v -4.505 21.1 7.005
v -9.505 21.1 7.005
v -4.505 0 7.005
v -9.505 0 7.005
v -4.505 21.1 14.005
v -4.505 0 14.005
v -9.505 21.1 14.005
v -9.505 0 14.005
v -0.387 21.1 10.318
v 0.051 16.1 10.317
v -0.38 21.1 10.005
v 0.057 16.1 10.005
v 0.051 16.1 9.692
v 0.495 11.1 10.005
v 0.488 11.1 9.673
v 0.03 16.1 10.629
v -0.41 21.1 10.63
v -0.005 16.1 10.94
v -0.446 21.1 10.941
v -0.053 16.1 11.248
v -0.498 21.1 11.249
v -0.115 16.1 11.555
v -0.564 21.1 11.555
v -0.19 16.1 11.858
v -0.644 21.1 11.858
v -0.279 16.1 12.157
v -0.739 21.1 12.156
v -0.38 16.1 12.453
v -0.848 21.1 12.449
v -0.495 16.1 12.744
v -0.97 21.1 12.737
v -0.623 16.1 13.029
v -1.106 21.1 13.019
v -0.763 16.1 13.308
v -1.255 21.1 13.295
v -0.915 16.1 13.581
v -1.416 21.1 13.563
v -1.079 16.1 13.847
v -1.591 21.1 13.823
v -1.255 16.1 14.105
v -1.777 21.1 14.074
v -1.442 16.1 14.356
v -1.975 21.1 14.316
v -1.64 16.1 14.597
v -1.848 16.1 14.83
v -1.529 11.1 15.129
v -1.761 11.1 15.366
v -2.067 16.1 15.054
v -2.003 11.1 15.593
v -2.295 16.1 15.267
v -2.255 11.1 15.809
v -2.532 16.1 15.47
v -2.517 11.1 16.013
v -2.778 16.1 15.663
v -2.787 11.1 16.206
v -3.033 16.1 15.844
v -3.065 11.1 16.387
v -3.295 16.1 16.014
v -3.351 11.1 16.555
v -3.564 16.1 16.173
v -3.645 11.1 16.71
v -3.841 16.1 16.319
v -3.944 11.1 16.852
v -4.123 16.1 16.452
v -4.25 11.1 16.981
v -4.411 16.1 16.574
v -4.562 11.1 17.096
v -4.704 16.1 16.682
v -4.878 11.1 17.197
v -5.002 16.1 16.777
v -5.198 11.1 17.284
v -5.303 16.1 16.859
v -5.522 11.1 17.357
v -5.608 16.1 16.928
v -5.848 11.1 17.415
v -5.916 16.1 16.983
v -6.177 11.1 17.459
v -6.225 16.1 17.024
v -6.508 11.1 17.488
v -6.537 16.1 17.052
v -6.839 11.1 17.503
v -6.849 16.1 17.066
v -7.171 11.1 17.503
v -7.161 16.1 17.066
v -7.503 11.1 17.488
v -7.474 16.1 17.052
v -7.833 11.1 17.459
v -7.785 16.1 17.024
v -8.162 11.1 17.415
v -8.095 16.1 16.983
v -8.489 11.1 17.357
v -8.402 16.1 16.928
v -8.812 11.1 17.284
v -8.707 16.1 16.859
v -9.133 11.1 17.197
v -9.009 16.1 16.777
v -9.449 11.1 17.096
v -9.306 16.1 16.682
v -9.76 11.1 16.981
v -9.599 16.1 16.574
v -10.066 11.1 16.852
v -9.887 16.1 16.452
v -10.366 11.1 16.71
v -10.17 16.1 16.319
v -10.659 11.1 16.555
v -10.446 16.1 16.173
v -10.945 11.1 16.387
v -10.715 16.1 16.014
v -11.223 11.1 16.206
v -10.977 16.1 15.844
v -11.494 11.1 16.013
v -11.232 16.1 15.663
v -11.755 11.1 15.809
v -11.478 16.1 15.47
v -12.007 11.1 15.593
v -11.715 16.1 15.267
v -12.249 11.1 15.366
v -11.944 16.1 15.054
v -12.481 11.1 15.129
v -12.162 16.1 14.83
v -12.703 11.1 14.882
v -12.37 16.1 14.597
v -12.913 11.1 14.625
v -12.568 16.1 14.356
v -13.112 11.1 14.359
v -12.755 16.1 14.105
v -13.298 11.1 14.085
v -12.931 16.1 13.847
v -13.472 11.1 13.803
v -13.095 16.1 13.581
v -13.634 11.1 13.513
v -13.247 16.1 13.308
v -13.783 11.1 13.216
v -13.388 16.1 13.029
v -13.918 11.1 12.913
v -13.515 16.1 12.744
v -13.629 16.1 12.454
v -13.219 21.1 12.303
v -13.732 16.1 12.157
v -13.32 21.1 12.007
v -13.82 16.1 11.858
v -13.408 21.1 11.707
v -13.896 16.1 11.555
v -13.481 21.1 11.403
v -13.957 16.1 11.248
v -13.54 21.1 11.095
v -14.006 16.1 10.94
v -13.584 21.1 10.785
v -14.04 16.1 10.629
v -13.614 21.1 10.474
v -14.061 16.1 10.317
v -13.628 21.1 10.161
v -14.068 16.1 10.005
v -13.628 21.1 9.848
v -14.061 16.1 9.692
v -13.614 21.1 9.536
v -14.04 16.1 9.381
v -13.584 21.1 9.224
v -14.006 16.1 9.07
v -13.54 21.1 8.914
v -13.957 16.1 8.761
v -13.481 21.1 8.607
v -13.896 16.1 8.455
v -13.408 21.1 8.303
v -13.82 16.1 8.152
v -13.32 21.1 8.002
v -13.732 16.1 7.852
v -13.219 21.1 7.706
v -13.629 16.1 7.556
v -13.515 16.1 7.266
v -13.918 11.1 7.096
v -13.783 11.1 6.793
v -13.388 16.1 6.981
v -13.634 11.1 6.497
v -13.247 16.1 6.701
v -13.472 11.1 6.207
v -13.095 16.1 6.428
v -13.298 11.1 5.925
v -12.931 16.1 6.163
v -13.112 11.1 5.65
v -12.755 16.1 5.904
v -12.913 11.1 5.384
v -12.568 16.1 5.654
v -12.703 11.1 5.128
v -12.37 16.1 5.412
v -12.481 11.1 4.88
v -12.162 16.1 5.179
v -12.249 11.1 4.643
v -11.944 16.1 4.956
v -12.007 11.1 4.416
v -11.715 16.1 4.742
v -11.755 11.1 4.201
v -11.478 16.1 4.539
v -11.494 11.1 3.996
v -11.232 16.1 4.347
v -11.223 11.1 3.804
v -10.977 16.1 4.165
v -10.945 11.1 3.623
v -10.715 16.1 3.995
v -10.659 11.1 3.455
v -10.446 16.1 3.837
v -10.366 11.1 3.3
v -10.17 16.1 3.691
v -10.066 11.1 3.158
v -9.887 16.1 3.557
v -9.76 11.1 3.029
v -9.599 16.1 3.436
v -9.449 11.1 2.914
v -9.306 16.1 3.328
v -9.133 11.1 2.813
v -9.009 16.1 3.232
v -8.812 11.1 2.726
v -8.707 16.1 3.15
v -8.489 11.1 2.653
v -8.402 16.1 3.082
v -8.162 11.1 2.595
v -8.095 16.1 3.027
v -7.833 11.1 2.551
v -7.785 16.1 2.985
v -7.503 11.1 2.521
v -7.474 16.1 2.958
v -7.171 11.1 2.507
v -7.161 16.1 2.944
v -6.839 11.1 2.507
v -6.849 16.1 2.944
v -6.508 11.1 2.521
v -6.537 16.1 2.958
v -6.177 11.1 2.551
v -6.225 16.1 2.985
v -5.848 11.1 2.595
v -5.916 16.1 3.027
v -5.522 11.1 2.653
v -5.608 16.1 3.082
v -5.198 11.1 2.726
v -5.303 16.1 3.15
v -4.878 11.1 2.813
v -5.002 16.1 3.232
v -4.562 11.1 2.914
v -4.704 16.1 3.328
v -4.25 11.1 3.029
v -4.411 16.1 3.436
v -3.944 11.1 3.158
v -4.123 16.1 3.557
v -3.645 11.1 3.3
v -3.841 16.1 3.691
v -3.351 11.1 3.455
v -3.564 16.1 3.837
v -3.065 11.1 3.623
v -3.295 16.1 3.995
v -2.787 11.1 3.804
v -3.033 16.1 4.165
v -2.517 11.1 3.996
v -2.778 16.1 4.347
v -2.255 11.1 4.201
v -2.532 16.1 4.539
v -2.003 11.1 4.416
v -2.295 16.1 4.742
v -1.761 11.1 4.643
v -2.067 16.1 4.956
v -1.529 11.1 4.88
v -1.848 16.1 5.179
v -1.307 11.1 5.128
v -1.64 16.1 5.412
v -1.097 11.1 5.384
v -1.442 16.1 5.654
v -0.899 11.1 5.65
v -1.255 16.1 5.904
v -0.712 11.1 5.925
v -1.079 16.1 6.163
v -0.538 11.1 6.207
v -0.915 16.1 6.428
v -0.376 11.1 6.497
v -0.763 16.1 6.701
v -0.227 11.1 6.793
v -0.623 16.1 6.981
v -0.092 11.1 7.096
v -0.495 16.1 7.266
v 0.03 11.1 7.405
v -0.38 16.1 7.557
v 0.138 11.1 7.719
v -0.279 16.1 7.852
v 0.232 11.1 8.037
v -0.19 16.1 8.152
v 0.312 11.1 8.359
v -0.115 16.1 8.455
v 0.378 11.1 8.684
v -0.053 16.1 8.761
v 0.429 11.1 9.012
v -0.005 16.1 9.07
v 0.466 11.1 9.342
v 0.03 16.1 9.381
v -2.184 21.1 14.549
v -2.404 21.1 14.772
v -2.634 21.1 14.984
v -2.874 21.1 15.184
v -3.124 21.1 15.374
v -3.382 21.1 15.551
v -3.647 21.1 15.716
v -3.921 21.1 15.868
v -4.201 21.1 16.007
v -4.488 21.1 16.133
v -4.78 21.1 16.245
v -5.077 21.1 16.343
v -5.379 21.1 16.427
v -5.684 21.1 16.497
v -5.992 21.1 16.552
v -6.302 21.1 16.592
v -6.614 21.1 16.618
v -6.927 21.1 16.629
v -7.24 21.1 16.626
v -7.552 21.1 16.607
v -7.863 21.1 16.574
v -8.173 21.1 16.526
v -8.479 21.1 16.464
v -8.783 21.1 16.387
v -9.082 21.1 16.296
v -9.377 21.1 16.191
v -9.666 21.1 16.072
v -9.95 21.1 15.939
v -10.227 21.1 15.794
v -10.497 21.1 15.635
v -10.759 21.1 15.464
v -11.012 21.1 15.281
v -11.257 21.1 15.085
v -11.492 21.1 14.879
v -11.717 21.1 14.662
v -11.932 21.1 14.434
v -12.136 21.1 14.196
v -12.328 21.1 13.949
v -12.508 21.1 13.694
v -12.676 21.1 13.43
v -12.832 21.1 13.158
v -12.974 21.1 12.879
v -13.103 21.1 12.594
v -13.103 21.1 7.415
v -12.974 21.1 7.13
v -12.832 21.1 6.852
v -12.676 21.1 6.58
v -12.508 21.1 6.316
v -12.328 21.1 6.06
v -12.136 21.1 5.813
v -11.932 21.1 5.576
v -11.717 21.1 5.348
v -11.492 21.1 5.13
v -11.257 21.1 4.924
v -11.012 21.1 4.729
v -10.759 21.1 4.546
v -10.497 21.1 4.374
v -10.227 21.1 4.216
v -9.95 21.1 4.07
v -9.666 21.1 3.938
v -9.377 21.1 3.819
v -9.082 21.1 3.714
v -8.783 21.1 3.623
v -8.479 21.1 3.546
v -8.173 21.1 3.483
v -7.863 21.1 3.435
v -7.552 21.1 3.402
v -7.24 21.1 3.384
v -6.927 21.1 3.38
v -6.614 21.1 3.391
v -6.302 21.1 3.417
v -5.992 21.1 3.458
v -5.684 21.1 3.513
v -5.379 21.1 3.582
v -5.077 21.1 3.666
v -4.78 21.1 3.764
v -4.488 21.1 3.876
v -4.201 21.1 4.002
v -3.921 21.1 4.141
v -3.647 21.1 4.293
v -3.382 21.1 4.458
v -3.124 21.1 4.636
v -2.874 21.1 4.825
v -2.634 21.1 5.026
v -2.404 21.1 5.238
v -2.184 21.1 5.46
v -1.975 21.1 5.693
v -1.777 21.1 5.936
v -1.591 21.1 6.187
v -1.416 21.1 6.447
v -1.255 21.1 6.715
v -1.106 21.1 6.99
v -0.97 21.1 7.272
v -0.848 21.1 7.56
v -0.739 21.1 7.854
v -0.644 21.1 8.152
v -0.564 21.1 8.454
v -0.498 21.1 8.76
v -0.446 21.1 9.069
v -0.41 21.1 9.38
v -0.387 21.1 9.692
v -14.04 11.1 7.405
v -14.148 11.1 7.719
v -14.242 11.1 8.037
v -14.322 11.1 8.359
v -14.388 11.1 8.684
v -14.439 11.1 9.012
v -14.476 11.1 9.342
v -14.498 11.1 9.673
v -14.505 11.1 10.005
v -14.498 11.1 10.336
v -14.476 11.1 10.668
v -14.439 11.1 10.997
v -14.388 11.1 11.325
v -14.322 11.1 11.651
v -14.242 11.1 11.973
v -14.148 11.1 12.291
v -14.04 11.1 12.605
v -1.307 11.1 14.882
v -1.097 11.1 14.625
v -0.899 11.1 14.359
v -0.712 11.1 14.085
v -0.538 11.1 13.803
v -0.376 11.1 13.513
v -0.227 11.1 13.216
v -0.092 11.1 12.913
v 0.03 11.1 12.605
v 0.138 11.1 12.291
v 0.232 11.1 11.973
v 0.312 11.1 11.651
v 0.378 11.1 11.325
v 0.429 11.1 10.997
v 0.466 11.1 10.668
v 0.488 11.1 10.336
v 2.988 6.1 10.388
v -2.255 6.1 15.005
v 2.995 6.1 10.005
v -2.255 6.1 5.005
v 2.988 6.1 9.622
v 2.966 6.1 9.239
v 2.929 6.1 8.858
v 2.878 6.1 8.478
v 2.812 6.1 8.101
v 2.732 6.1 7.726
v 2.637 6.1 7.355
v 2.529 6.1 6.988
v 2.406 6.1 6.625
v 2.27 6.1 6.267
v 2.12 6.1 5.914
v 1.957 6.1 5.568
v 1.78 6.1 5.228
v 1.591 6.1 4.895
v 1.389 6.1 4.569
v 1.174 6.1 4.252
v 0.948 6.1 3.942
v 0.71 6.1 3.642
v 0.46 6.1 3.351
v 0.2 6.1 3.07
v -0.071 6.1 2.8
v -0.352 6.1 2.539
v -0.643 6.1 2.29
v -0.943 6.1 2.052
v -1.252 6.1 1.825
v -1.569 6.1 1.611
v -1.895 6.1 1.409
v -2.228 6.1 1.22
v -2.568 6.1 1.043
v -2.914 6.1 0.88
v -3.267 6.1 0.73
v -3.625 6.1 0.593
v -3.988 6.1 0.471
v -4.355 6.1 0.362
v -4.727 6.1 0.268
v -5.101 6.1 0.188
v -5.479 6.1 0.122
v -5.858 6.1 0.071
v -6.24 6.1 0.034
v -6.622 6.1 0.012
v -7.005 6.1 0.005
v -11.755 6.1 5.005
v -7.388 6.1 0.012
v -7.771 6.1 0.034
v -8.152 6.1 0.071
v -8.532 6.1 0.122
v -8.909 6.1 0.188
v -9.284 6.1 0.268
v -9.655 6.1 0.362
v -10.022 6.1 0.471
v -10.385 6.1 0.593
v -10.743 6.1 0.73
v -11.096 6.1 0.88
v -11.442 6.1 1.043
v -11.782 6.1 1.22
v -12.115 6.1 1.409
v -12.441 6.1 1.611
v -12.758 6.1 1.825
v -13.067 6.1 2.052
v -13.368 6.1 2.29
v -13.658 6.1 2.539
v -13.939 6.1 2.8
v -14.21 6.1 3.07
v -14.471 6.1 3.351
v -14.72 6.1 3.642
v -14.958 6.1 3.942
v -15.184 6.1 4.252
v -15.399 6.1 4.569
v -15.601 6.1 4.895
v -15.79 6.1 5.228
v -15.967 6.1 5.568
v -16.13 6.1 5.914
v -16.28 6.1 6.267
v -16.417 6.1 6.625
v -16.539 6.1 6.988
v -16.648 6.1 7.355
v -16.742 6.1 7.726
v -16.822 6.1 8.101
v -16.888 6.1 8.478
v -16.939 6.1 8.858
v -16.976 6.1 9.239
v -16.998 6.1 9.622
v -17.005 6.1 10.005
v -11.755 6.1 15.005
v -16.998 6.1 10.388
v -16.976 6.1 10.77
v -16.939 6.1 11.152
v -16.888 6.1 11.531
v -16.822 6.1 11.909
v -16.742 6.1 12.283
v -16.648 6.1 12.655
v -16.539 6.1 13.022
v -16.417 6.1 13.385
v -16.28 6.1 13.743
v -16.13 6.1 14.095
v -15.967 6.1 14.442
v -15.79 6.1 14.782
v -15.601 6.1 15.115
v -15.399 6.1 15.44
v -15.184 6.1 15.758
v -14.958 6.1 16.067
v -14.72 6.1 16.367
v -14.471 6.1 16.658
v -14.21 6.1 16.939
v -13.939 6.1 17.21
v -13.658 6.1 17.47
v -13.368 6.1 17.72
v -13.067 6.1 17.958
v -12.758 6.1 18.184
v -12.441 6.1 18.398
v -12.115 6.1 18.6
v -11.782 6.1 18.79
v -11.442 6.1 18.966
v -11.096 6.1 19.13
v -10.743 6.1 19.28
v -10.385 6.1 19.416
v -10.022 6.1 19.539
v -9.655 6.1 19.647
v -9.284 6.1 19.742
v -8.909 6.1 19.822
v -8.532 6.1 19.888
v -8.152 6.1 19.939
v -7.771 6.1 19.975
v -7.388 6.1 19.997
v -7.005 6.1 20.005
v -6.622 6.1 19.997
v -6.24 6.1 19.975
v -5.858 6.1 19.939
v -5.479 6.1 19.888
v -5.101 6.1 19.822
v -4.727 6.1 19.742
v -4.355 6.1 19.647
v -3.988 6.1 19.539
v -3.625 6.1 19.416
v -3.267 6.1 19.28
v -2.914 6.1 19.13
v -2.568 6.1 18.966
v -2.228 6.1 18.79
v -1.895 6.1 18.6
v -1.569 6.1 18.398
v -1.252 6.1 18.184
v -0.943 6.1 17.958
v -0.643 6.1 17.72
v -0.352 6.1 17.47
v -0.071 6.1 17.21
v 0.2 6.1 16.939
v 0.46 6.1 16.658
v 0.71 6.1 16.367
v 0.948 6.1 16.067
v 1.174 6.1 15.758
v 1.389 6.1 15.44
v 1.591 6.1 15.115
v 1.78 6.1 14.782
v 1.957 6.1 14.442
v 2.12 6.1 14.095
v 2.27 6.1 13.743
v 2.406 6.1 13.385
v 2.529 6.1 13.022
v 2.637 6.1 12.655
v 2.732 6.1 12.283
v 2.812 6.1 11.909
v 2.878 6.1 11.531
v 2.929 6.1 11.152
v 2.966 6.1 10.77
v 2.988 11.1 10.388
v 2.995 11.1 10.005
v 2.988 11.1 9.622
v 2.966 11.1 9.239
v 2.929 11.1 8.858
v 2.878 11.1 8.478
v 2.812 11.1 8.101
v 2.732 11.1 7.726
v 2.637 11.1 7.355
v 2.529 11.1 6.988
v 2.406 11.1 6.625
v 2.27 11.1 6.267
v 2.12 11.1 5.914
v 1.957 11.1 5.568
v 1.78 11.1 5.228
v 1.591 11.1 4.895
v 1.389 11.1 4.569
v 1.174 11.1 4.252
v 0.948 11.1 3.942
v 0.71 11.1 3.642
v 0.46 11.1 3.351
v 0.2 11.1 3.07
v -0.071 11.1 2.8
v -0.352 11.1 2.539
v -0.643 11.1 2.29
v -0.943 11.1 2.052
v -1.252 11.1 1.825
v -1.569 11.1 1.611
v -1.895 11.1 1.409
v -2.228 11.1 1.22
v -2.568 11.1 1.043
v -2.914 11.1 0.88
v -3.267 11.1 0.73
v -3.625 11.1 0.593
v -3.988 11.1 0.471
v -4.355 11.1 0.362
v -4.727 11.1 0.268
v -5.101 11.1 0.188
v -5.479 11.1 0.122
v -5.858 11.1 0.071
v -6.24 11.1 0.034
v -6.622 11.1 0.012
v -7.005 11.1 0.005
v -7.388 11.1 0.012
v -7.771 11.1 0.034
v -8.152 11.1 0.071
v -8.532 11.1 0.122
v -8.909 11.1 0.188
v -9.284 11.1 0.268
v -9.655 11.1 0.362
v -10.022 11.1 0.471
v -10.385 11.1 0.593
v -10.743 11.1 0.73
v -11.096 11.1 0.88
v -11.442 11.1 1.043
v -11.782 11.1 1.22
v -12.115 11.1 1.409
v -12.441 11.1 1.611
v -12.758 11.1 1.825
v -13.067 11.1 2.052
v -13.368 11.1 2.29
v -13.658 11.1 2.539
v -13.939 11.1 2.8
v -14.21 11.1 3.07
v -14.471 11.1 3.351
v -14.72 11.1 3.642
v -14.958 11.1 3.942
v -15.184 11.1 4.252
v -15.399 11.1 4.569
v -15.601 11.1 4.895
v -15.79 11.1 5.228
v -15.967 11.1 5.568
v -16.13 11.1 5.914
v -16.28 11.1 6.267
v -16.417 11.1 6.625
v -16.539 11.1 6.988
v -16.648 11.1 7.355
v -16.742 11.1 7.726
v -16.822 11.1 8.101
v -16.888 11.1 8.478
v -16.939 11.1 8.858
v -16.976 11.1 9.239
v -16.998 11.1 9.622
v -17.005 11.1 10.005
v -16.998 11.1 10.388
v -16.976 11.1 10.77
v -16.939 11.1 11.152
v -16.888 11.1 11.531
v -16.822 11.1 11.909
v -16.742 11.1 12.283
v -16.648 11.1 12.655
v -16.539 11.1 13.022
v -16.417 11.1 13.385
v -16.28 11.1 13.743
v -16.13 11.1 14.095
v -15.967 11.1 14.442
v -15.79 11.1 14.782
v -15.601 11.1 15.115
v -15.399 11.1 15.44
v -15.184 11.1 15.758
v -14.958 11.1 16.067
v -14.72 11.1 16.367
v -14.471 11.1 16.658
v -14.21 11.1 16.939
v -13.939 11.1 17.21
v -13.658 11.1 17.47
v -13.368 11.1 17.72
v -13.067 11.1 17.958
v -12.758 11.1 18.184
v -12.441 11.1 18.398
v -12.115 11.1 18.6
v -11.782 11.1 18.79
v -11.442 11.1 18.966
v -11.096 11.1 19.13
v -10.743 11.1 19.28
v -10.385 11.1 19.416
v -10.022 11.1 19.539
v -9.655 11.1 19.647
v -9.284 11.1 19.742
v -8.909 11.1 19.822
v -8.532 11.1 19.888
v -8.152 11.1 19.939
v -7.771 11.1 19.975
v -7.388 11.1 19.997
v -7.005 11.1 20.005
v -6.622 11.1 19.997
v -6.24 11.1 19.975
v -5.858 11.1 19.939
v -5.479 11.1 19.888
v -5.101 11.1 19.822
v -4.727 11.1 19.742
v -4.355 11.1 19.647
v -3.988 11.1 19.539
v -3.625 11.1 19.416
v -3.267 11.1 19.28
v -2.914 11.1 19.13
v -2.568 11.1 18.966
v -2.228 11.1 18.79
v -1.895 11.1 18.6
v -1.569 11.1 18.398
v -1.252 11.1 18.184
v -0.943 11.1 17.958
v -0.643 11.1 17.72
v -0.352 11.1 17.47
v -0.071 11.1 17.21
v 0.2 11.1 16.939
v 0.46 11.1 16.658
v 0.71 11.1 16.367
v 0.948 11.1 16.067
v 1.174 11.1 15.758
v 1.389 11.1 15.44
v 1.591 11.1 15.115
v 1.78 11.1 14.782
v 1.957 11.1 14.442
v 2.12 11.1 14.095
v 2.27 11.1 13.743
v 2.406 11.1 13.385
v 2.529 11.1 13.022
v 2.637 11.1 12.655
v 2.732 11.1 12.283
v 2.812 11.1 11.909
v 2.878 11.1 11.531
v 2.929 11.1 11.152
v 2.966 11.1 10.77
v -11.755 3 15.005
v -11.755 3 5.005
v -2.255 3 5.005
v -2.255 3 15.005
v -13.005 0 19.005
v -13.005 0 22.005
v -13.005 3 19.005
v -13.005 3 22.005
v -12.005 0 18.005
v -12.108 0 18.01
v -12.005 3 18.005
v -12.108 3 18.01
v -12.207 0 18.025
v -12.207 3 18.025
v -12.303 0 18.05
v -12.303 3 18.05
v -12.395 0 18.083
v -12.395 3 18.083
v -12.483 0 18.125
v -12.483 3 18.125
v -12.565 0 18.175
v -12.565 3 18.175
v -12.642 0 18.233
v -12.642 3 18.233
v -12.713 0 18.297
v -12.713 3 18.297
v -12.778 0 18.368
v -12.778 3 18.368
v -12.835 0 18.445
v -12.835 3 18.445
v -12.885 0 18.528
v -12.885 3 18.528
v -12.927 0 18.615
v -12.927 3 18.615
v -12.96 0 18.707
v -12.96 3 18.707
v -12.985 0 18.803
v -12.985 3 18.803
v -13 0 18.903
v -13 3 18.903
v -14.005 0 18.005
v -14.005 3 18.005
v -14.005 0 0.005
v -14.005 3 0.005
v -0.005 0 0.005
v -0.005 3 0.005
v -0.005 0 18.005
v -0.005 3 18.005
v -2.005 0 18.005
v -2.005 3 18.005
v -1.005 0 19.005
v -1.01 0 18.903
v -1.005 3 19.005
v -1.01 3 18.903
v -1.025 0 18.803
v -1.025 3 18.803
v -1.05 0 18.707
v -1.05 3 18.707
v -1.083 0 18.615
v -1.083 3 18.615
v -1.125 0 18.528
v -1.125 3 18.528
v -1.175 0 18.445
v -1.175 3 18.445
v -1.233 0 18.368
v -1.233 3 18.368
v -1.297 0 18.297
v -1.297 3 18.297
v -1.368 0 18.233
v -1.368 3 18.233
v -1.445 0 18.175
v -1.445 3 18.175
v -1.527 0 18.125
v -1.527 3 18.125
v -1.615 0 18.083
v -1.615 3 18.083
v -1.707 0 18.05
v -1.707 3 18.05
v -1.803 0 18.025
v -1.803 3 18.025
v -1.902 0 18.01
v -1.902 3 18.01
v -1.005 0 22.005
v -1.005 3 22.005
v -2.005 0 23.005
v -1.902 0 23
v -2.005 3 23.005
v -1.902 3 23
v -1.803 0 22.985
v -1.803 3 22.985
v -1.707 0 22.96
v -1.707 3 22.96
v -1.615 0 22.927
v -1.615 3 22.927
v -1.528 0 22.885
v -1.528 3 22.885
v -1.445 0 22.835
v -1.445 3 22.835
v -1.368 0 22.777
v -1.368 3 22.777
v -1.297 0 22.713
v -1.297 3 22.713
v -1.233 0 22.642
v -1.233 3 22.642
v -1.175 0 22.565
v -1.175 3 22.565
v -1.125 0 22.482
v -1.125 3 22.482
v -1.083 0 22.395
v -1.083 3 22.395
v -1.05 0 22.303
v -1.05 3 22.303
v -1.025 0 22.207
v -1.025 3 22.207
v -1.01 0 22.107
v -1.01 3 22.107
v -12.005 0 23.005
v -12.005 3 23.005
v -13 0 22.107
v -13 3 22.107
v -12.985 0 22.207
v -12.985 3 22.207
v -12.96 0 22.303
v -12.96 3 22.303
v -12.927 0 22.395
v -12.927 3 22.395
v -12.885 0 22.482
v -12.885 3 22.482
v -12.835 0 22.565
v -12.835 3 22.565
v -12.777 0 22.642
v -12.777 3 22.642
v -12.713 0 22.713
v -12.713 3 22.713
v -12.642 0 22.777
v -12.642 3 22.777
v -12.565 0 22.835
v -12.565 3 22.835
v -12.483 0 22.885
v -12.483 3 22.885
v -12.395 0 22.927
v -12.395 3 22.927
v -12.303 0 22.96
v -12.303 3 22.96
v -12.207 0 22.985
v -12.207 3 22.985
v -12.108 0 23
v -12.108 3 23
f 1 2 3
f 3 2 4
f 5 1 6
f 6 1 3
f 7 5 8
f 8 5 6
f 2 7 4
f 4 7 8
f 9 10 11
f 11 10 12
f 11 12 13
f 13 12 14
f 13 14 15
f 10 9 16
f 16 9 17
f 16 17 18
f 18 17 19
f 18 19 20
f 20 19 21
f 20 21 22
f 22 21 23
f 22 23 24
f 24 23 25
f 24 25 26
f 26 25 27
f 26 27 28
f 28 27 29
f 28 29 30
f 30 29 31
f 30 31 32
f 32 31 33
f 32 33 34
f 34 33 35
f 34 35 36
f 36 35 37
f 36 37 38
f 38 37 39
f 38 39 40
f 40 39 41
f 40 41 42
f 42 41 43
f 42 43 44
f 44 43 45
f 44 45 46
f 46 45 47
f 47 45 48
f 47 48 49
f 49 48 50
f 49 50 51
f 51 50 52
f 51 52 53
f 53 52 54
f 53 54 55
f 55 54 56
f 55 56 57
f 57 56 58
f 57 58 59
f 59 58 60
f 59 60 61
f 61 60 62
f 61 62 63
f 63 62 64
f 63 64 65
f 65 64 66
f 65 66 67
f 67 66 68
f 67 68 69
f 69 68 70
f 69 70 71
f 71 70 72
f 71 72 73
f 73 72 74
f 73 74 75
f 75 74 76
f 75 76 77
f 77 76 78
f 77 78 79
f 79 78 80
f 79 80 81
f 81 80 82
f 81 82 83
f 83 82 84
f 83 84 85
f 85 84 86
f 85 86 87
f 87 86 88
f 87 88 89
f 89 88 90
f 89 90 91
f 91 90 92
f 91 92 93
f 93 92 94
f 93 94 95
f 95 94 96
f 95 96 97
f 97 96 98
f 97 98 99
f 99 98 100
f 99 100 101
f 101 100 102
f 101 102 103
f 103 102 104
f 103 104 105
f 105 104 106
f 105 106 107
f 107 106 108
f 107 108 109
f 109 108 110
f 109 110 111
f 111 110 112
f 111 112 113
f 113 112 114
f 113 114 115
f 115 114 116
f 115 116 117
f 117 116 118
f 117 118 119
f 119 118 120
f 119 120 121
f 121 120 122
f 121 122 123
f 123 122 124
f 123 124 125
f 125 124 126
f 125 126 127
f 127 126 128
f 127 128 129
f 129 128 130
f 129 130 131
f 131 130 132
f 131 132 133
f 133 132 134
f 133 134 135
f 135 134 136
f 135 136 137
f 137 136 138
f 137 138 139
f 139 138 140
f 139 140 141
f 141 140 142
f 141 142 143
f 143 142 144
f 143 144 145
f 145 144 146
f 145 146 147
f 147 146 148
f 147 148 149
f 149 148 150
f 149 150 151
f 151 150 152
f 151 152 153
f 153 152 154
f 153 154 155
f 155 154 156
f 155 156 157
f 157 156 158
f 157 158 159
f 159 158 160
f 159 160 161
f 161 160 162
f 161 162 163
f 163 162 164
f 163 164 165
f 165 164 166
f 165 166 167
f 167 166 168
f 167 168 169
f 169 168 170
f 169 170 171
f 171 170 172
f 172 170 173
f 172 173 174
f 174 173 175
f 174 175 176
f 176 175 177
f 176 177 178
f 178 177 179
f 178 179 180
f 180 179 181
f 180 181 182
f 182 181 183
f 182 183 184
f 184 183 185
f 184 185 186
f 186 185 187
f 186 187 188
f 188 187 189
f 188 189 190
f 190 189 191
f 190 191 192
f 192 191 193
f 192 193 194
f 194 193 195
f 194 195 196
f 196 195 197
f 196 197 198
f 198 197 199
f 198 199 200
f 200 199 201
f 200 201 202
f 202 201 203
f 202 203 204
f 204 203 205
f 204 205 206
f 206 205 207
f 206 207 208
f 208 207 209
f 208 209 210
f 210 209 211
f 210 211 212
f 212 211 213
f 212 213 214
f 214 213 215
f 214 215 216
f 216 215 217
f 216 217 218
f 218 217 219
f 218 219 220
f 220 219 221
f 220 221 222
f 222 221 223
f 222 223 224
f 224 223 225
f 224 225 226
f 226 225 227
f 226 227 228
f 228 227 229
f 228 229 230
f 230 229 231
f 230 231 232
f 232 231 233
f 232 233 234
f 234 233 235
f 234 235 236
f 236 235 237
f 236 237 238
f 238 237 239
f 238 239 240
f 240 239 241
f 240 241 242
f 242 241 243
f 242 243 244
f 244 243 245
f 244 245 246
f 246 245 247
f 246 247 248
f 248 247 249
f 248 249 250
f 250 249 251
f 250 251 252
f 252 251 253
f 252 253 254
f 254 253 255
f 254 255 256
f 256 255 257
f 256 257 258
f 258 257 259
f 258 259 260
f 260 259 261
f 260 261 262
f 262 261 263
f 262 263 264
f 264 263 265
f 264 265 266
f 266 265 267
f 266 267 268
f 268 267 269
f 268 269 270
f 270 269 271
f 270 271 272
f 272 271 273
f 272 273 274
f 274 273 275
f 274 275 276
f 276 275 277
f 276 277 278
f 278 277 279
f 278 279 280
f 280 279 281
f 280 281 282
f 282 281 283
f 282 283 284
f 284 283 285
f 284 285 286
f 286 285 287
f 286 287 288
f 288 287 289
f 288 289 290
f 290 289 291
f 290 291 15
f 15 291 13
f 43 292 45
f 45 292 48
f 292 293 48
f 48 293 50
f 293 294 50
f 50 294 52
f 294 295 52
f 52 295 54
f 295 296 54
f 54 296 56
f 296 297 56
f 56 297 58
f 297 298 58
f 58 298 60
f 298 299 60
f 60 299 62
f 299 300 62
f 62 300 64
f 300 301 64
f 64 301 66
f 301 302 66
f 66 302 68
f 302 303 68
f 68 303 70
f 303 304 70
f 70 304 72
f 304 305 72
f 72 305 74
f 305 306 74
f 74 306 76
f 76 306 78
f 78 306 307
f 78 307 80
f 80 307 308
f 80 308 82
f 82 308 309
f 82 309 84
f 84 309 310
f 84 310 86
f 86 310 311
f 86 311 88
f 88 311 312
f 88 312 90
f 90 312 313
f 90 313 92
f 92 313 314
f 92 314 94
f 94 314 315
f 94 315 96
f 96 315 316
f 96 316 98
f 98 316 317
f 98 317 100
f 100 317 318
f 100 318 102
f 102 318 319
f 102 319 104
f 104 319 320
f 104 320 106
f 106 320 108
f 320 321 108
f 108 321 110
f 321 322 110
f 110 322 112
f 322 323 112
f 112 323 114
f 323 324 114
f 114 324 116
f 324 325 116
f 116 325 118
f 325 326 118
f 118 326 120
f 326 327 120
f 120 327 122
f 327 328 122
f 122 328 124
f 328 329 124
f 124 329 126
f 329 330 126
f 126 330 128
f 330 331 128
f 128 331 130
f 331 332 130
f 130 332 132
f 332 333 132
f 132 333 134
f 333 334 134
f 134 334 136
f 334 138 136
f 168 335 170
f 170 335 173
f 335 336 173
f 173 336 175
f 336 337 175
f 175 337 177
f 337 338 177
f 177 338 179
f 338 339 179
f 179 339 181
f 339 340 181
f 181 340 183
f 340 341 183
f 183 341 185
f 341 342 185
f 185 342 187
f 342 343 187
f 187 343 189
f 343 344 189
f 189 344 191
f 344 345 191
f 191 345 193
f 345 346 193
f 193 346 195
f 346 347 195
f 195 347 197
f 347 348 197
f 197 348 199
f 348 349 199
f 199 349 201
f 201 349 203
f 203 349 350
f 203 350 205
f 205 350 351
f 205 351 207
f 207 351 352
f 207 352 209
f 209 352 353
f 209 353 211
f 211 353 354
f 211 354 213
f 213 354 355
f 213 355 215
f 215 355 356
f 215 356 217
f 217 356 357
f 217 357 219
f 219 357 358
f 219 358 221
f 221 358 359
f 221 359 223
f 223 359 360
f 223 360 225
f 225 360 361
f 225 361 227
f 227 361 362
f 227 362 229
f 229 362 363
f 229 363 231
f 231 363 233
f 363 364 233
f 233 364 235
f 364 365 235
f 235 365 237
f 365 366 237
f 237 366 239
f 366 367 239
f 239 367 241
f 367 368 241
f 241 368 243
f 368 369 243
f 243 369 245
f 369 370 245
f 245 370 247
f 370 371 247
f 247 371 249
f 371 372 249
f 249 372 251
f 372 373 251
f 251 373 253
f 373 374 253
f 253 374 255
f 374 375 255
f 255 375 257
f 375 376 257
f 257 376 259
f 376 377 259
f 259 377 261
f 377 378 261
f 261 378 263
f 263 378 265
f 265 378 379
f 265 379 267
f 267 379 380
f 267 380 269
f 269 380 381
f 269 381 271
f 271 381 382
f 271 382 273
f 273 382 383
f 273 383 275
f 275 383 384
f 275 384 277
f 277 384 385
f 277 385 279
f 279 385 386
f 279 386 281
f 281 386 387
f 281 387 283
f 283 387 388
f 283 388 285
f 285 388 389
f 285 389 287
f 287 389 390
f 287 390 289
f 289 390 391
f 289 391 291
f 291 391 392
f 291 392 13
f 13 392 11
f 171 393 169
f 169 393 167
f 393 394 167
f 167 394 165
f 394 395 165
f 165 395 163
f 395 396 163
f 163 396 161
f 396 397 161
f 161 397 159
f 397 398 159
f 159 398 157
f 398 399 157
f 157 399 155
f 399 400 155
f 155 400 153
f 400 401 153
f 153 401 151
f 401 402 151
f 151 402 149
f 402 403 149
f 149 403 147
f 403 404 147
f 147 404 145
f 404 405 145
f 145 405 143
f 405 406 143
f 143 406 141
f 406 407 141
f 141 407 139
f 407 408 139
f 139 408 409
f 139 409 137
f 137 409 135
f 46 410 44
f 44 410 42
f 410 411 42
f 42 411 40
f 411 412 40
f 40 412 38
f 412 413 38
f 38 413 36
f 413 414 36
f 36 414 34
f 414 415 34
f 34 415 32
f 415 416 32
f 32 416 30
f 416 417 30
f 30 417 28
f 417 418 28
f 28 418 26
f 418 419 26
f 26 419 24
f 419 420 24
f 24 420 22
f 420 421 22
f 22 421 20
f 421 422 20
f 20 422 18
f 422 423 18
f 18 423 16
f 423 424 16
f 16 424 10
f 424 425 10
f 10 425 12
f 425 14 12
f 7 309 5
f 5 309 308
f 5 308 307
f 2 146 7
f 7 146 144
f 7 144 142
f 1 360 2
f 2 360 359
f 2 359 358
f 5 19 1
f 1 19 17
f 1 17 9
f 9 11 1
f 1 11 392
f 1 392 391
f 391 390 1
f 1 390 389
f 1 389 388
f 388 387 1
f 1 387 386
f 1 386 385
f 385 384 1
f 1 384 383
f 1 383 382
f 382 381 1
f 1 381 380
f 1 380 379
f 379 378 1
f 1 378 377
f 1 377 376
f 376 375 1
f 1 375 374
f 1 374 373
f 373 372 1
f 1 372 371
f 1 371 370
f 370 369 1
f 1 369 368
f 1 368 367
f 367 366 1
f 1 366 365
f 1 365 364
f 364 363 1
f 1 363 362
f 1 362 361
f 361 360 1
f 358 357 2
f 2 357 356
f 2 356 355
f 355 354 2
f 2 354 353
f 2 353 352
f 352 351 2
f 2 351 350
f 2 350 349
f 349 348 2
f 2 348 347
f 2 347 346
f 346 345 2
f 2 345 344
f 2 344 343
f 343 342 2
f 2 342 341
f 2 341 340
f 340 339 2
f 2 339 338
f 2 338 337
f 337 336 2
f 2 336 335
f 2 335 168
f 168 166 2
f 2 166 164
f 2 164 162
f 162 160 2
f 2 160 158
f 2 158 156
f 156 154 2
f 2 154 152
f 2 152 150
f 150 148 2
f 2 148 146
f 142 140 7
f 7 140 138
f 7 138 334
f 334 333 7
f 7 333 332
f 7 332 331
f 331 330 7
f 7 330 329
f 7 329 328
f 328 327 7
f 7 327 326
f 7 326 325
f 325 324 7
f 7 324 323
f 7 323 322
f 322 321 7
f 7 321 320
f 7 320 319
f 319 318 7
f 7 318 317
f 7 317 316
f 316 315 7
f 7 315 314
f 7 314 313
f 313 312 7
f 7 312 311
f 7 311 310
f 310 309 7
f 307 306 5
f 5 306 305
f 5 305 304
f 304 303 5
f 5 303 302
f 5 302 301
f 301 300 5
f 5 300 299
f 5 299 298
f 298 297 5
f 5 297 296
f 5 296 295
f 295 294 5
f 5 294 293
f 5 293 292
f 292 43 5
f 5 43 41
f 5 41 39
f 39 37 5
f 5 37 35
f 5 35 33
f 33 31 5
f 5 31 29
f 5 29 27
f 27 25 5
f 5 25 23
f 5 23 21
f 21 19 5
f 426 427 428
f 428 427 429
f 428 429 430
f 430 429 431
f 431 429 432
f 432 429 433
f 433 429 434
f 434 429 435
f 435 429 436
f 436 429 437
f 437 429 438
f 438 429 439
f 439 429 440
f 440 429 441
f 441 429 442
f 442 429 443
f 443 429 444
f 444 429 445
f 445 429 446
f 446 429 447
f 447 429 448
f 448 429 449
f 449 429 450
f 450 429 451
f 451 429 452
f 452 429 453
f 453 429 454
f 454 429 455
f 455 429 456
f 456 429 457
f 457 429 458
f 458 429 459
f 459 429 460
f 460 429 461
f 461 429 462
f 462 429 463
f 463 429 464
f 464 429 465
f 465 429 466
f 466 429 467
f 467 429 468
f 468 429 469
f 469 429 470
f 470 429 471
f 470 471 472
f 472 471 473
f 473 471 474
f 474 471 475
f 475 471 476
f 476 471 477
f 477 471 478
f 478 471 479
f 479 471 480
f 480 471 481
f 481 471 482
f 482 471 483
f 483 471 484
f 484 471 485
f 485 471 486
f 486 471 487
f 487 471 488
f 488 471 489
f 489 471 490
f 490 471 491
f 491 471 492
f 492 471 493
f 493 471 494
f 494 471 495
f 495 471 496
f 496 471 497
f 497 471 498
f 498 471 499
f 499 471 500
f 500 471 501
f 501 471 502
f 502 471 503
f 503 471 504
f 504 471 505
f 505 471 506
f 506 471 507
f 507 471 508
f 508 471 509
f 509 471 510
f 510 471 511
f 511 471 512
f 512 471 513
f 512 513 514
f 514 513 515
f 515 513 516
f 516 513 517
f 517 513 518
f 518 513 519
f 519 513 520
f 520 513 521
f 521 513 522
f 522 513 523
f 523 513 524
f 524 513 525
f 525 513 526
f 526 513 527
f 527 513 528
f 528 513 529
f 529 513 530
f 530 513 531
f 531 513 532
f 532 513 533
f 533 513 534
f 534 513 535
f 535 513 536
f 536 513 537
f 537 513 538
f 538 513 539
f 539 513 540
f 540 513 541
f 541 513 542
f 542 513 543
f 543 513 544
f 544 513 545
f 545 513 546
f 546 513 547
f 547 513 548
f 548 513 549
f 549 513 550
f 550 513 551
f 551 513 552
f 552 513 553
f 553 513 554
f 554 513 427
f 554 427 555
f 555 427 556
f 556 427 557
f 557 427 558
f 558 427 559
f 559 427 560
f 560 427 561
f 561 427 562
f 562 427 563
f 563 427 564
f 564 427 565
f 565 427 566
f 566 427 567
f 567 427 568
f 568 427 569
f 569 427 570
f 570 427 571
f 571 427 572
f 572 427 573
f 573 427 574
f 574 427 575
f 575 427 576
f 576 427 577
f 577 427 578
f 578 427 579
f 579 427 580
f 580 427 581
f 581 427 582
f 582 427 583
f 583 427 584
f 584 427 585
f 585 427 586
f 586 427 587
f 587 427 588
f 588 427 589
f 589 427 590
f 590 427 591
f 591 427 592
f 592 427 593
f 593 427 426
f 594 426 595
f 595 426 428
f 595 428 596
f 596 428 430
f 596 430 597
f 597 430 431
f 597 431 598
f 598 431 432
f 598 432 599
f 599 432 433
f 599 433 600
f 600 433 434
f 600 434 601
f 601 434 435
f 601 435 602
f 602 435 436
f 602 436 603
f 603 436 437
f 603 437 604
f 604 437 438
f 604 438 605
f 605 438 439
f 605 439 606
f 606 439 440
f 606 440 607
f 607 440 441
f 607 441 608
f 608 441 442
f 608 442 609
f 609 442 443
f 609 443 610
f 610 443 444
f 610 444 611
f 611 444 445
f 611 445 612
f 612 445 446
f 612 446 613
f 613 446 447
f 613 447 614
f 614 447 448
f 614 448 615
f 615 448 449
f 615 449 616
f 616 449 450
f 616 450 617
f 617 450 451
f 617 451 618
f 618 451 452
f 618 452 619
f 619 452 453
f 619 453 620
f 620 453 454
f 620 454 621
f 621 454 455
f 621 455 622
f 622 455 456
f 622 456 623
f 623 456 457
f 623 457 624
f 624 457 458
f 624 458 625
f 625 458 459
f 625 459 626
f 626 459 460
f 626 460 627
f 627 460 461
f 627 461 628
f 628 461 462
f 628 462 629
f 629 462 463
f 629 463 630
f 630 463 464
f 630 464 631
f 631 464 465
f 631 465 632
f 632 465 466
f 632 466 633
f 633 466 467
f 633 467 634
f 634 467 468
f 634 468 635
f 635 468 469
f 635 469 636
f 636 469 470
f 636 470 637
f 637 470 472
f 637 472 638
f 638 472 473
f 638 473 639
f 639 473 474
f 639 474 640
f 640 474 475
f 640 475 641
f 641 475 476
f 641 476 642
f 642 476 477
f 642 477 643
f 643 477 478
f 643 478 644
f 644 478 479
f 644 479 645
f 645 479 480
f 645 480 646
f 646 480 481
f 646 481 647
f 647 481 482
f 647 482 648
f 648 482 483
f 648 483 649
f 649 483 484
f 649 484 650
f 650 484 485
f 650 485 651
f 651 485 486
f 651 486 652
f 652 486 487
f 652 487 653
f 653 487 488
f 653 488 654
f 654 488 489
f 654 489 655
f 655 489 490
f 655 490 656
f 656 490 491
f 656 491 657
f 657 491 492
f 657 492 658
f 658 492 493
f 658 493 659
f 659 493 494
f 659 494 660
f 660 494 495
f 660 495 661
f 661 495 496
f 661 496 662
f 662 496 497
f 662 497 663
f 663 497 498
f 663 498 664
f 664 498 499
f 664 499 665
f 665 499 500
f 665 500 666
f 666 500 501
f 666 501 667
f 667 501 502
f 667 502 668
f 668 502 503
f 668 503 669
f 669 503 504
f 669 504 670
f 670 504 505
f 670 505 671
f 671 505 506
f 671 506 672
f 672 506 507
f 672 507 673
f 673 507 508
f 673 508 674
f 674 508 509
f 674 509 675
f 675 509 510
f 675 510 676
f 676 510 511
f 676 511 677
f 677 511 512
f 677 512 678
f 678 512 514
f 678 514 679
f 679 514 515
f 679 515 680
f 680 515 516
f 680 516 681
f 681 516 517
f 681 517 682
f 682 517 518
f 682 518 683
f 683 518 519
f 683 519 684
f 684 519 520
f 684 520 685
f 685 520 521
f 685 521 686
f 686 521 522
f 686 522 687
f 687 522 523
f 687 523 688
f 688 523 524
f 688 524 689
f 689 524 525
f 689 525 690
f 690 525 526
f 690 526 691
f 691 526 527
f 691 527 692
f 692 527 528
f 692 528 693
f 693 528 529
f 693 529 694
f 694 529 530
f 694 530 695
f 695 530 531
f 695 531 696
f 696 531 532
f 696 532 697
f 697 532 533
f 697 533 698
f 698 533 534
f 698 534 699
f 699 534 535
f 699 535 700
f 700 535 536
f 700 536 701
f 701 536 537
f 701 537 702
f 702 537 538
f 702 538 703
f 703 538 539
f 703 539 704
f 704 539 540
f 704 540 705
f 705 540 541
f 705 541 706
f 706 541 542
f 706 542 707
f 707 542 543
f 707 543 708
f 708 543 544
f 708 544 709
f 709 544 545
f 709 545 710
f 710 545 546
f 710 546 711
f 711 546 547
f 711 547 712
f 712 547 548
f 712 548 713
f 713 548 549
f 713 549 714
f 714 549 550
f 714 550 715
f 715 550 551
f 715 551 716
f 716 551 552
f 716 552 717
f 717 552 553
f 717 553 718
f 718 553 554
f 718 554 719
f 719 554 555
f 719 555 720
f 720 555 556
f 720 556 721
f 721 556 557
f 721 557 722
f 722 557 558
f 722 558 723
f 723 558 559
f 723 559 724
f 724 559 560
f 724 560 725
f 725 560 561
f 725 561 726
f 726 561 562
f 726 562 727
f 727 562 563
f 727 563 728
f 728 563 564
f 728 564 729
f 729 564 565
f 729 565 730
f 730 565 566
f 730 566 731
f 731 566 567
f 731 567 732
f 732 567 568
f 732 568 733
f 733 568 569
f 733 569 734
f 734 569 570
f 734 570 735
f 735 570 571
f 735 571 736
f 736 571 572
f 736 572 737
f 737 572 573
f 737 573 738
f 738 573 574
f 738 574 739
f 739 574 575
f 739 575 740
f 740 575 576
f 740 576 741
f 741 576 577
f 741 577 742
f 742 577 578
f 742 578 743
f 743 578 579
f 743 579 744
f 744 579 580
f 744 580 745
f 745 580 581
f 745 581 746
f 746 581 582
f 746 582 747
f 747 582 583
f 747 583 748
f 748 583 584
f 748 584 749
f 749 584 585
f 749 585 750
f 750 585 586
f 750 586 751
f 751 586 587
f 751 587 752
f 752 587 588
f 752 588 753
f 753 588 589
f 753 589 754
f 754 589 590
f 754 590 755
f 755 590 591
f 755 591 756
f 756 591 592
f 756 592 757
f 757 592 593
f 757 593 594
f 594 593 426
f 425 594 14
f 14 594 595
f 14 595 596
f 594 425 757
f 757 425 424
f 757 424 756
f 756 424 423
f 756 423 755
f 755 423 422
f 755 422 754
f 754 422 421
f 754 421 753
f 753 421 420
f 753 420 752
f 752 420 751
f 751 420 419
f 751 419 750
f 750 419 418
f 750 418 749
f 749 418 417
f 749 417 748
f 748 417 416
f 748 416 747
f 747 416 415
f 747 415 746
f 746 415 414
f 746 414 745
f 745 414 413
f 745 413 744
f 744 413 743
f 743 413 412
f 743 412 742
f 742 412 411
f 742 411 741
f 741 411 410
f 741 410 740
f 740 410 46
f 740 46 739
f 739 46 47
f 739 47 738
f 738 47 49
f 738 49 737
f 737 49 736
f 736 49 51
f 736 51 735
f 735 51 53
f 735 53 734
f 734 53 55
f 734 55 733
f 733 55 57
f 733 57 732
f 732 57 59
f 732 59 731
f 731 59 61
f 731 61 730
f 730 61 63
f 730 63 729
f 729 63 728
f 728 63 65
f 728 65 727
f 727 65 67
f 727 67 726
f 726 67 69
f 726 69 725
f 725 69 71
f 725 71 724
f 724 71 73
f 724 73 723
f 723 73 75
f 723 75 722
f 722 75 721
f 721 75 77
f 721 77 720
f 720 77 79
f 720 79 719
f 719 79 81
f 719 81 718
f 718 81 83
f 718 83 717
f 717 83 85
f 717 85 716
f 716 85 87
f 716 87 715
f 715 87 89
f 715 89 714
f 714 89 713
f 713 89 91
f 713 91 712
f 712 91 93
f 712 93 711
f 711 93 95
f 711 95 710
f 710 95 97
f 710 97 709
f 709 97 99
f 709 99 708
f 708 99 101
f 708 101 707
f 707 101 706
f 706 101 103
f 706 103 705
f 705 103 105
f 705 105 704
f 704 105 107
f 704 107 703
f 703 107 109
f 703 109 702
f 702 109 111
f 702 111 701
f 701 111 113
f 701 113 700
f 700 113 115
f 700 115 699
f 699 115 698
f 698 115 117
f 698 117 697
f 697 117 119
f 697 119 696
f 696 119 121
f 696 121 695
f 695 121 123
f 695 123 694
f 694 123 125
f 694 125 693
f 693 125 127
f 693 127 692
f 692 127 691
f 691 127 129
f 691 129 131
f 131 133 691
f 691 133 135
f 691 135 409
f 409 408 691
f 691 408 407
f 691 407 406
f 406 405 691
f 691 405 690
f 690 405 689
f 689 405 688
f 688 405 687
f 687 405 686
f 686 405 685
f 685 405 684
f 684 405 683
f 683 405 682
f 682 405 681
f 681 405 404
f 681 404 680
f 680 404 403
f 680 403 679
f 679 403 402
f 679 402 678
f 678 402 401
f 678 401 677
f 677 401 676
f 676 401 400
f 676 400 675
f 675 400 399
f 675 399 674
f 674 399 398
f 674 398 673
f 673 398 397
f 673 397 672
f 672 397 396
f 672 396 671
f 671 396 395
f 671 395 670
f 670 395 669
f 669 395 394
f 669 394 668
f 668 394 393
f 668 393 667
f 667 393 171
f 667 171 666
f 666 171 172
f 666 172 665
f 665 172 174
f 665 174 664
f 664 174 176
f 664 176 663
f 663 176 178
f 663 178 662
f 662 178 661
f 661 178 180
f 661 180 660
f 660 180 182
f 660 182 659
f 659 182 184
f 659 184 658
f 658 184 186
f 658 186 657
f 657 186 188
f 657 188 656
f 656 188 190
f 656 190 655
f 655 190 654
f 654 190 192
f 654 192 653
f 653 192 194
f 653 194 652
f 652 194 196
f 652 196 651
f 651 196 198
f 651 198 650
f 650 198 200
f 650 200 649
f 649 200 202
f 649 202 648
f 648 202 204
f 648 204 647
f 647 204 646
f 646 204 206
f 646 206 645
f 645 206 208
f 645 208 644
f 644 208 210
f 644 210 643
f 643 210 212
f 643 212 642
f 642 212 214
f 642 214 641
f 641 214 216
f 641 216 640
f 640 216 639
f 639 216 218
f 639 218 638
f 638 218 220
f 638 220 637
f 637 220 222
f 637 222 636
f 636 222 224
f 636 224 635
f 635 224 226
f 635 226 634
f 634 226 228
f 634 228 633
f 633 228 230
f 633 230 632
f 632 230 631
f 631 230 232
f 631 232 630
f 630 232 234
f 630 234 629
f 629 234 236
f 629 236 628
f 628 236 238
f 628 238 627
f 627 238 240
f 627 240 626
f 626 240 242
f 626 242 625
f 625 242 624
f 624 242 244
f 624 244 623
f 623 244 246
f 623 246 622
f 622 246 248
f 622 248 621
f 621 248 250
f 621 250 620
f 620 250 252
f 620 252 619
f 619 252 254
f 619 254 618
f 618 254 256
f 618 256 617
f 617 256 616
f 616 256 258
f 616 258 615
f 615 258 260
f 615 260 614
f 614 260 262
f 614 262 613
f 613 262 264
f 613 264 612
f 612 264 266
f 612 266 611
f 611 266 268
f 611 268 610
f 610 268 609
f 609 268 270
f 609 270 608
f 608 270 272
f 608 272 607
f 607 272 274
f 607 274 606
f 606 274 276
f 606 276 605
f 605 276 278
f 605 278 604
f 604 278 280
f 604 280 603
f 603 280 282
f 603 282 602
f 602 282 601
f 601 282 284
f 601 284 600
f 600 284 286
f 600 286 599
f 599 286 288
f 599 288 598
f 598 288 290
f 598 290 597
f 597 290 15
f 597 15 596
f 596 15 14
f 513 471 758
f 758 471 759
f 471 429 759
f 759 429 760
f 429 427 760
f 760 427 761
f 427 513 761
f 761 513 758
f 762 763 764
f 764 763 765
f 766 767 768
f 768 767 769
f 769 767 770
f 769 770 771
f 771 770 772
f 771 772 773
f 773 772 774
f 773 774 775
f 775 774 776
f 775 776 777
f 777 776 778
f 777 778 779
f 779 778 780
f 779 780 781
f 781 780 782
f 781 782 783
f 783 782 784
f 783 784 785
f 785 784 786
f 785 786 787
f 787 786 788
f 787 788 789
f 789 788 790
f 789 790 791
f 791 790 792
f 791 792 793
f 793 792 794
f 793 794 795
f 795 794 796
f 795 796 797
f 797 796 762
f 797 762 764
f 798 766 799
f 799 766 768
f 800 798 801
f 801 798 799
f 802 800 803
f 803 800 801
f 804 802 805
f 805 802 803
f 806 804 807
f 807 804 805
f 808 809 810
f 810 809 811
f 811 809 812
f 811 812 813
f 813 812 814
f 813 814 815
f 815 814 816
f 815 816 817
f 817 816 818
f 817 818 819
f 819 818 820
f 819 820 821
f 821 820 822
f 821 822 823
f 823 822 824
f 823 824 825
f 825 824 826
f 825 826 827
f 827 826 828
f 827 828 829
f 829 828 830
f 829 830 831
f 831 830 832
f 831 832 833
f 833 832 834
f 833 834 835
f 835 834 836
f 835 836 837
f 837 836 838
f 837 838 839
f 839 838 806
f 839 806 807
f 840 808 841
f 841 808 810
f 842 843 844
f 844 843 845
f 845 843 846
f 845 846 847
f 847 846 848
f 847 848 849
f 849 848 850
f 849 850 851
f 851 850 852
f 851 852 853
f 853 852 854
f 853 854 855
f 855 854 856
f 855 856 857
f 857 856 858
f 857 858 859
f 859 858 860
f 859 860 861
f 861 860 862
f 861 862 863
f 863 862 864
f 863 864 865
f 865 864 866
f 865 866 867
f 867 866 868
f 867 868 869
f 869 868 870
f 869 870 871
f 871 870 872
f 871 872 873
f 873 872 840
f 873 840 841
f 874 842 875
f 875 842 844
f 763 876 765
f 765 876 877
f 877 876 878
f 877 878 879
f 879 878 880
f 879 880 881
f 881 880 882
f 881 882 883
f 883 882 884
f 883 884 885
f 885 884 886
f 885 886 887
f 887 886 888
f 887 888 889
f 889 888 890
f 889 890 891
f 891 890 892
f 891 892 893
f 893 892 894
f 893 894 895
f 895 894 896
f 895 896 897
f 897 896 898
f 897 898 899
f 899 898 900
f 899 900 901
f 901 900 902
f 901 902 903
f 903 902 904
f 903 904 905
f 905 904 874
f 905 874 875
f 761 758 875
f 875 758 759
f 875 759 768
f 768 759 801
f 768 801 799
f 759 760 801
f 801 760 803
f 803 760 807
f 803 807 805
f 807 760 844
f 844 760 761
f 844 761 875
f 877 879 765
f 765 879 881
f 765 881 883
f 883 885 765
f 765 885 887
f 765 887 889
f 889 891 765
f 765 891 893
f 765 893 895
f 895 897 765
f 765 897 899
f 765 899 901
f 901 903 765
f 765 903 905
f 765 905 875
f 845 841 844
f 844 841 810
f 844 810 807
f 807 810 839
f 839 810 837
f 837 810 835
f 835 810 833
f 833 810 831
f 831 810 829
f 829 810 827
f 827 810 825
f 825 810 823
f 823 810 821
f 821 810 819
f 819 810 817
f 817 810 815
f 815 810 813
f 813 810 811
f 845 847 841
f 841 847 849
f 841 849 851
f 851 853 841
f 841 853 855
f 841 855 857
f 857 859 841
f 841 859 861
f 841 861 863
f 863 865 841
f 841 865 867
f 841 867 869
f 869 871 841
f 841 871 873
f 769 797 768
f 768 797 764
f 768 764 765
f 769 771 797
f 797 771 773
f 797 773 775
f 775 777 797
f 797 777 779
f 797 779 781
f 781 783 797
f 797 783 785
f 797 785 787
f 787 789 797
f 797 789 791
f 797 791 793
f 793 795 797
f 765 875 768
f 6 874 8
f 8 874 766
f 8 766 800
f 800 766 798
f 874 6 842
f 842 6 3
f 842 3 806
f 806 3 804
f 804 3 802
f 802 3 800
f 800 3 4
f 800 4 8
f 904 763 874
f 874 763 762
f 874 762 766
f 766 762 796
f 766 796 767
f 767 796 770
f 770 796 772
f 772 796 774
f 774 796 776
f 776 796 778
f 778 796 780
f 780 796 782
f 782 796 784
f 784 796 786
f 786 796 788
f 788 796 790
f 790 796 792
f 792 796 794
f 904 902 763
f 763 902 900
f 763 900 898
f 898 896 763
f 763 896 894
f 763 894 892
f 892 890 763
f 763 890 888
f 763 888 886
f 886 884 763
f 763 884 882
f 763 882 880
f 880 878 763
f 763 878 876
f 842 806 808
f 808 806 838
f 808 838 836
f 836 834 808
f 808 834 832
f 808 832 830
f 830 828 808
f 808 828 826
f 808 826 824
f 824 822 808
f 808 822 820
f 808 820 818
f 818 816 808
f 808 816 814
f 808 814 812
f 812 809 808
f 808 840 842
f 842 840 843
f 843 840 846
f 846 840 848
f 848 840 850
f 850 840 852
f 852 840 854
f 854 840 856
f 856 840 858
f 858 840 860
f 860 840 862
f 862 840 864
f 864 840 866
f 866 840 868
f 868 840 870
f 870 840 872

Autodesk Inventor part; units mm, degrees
ref_plane "YZ Plane" through (0, 0, 0) normal (1, 0, 0) x (0, 1, 0)
ref_plane "XZ Plane" through (0, 0, 0) normal (0, 1, 0) x (-1, 0, 0)
ref_plane "XY Plane" through (0, 0, 0) normal (0, 0, 1) x (1, 0, 0)
sketch "Sketch3" plane through (0, 0, 0) normal (0, 1, 0) x (-1, 0, 0)
  spline S0 degree 3 poles (2.0049, 23.0048) (1.4509, 23.0048) (1.005, 22.5589) (1.005, 22.0049) knots 0 0 0 0 1 1 1 1
  line L0 (2.0049, 23.0048) -> (1.4509, 23.0048) construction
  line L1 (1.4509, 23.0048) -> (1.005, 22.5589) construction
  line L2 (1.005, 22.5589) -> (1.005, 22.0049) construction
  spline S1 degree 3 poles (1.005, 19.0051) (1.005, 18.4511) (1.4509, 18.0046) (2.0049, 18.0046) knots 0 0 0 0 1 1 1 1
  line L3 (1.005, 19.0051) -> (1.005, 18.4511) construction
  line L4 (1.005, 18.4511) -> (1.4509, 18.0046) construction
  line L5 (1.4509, 18.0046) -> (2.0049, 18.0046) construction
  line L6 (1.005, 22.0049) -> (1.005, 19.0051)
  spline S2 degree 3 poles (12.0053, 18.0046) (12.5593, 18.0046) (13.0053, 18.4511) (13.0053, 19.0051) knots 0 0 0 0 1 1 1 1
  line L7 (12.0053, 18.0046) -> (12.5593, 18.0046) construction
  line L8 (12.5593, 18.0046) -> (13.0053, 18.4511) construction
  line L9 (13.0053, 18.4511) -> (13.0053, 19.0051) construction
  line L10 (2.0049, 18.0046) -> (0.005, 18.0046)
  line L11 (0.005, 18.0046) -> (0.005, 0.0047)
  line L12 (0.005, 0.0047) -> (14.0052, 0.0048)
  line L13 (14.0052, 0.0048) -> (14.0052, 18.0046)
  line L14 (14.0052, 18.0046) -> (12.0053, 18.0046)
  spline S3 degree 3 poles (13.0053, 22.0049) (13.0053, 22.5589) (12.5593, 23.0048) (12.0053, 23.0048) knots 0 0 0 0 1 1 1 1
  line L15 (13.0053, 22.0049) -> (13.0053, 22.5589) construction
  line L16 (13.0053, 22.5589) -> (12.5593, 23.0048) construction
  line L17 (12.5593, 23.0048) -> (12.0053, 23.0048) construction
  line L18 (13.0053, 19.0051) -> (13.0053, 22.0049)
  line L19 (12.0053, 23.0048) -> (2.0049, 23.0048)
  point P0 (0, 0)
  point P1 (2.0049, 23.0048)
  point P2 (1.005, 22.0049)
  point P3 (1.005, 19.0051)
  point P4 (2.0049, 18.0046)
  point P5 (0.005, 18.0046)
  point P6 (12.0054, 18.0046)
  point P7 (12.0053, 23.0048)
extrude "Extrusion2" add sketch "Sketch3" along normal blind 3
ref_plane "Edge of module" through (0, 6.1, 0) normal (0, 1, 0) x (1, 0, 0)
sketch "Sketch5" plane through (0, 3, 0) normal (0, 1, 0) x (1, 0, 0)
  line L0 (-0.005, -18.0046) -> (-0.005, -0.0047) projected
  line L1 (-0.005, -3.5047) -> (-14.0052, -3.5048) construction
  line L2 (-14.0052, -0.0048) -> (-14.0052, -18.0046) projected
  line L3 (-0.005, -0.0047) -> (-14.0052, -0.0048) projected
  line L4 (-0.005, -0.0047) -> (-14.0052, -0.0048) construction
  line L5 (-7.0051, -0.0047) -> (-7.0051, -23.0048) construction
  line L6 (-12.0053, -23.0048) -> (-2.0049, -23.0048) construction
  line L7 (-2.2551, -15.0047) -> (-2.2551, -5.0047)
  line L8 (-2.2551, -5.0047) -> (-11.7551, -5.0047)
  line L9 (-11.7551, -5.0047) -> (-11.7551, -15.0047)
  line L10 (-11.7551, -15.0047) -> (-2.2551, -15.0047)
  line L11 (-2.2551, -15.0047) -> (-11.7551, -5.0047) construction
  line L12 (-2.2551, -5.0047) -> (-11.7551, -15.0047) construction
  point P0 (0, 0)
  point P1 (-7.0051, -10.0047)
  dimension "d9" = 3.5
  dimension "d10" = 9.5
  dimension "d11" = 10
  dimension "d12" = 1.5
extrude "Extrusion3" add sketch "Sketch5" along normal up to surface (3.1 mm away)
sketch "Sketch6" plane through (-11.7551, 6.1, 5.0047) normal (0, 1, 0) x (1, 0, 0)
  line L0 (4.75, 5) -> (4.75, -18.0001) construction
  line L1 (9.5, -10) -> (0, -10) construction
  line L2 (9.5, -10) -> (0, 0) construction
  circle A0 centre (4.75, -5) radius 10
  point P0 (11.7551, 5.0047)
  dimension "d15" = 20
extrude "Extrusion4" add sketch "Sketch6" along normal blind 5
sketch "Sketch7" plane through (-7.0051, 11.1, 10.0047) normal (0, 1, 0) x (1, 0, 0)
  circle A0 centre (0, 0) radius 7.5
  point P0 (7.0051, 10.0047)
  dimension "d18" = 15
extrude "Extrusion5" add sketch "Sketch7" along normal blind 10 draft -5
ref_plane "Work Plane5" through (-0.005, 0, 0.0047) normal (0, 0, -1) x (-1, 0, 0)
sketch "Sketch8" plane through (0, 0, 0) normal (0, -1, 0) x (1, 0, 0)
  line L0 (-9.5051, 7.0047) -> (-4.5051, 7.0047)
  line L1 (-4.5051, 7.0047) -> (-4.5051, 14.0047)
  line L2 (-4.5051, 14.0047) -> (-9.5051, 14.0047)
  line L3 (-9.5051, 14.0047) -> (-9.5051, 7.0047)
  line L4 (-9.5051, 7.0047) -> (-4.5051, 14.0047) construction
  line L5 (-4.5051, 7.0047) -> (-9.5051, 14.0047) construction
  line L6 (-0.005, 0.0047) -> (-14.0052, 0.0048) construction
  line L7 (-7.0051, 0.0047) -> (-7.0051, 22.9634) construction
  line L8 (2.801, 0.0047) -> (-16.8063, 0.0048) projected
  point P0 (0, 0)
  point P1 (-7.0051, 10.5047)
  dimension "d21" = 5
  dimension "d22" = 7
  dimension "d24" = 7
extrude "Extrusion6" cut sketch "Sketch8" against normal through all
properties part number "Ant connector"
